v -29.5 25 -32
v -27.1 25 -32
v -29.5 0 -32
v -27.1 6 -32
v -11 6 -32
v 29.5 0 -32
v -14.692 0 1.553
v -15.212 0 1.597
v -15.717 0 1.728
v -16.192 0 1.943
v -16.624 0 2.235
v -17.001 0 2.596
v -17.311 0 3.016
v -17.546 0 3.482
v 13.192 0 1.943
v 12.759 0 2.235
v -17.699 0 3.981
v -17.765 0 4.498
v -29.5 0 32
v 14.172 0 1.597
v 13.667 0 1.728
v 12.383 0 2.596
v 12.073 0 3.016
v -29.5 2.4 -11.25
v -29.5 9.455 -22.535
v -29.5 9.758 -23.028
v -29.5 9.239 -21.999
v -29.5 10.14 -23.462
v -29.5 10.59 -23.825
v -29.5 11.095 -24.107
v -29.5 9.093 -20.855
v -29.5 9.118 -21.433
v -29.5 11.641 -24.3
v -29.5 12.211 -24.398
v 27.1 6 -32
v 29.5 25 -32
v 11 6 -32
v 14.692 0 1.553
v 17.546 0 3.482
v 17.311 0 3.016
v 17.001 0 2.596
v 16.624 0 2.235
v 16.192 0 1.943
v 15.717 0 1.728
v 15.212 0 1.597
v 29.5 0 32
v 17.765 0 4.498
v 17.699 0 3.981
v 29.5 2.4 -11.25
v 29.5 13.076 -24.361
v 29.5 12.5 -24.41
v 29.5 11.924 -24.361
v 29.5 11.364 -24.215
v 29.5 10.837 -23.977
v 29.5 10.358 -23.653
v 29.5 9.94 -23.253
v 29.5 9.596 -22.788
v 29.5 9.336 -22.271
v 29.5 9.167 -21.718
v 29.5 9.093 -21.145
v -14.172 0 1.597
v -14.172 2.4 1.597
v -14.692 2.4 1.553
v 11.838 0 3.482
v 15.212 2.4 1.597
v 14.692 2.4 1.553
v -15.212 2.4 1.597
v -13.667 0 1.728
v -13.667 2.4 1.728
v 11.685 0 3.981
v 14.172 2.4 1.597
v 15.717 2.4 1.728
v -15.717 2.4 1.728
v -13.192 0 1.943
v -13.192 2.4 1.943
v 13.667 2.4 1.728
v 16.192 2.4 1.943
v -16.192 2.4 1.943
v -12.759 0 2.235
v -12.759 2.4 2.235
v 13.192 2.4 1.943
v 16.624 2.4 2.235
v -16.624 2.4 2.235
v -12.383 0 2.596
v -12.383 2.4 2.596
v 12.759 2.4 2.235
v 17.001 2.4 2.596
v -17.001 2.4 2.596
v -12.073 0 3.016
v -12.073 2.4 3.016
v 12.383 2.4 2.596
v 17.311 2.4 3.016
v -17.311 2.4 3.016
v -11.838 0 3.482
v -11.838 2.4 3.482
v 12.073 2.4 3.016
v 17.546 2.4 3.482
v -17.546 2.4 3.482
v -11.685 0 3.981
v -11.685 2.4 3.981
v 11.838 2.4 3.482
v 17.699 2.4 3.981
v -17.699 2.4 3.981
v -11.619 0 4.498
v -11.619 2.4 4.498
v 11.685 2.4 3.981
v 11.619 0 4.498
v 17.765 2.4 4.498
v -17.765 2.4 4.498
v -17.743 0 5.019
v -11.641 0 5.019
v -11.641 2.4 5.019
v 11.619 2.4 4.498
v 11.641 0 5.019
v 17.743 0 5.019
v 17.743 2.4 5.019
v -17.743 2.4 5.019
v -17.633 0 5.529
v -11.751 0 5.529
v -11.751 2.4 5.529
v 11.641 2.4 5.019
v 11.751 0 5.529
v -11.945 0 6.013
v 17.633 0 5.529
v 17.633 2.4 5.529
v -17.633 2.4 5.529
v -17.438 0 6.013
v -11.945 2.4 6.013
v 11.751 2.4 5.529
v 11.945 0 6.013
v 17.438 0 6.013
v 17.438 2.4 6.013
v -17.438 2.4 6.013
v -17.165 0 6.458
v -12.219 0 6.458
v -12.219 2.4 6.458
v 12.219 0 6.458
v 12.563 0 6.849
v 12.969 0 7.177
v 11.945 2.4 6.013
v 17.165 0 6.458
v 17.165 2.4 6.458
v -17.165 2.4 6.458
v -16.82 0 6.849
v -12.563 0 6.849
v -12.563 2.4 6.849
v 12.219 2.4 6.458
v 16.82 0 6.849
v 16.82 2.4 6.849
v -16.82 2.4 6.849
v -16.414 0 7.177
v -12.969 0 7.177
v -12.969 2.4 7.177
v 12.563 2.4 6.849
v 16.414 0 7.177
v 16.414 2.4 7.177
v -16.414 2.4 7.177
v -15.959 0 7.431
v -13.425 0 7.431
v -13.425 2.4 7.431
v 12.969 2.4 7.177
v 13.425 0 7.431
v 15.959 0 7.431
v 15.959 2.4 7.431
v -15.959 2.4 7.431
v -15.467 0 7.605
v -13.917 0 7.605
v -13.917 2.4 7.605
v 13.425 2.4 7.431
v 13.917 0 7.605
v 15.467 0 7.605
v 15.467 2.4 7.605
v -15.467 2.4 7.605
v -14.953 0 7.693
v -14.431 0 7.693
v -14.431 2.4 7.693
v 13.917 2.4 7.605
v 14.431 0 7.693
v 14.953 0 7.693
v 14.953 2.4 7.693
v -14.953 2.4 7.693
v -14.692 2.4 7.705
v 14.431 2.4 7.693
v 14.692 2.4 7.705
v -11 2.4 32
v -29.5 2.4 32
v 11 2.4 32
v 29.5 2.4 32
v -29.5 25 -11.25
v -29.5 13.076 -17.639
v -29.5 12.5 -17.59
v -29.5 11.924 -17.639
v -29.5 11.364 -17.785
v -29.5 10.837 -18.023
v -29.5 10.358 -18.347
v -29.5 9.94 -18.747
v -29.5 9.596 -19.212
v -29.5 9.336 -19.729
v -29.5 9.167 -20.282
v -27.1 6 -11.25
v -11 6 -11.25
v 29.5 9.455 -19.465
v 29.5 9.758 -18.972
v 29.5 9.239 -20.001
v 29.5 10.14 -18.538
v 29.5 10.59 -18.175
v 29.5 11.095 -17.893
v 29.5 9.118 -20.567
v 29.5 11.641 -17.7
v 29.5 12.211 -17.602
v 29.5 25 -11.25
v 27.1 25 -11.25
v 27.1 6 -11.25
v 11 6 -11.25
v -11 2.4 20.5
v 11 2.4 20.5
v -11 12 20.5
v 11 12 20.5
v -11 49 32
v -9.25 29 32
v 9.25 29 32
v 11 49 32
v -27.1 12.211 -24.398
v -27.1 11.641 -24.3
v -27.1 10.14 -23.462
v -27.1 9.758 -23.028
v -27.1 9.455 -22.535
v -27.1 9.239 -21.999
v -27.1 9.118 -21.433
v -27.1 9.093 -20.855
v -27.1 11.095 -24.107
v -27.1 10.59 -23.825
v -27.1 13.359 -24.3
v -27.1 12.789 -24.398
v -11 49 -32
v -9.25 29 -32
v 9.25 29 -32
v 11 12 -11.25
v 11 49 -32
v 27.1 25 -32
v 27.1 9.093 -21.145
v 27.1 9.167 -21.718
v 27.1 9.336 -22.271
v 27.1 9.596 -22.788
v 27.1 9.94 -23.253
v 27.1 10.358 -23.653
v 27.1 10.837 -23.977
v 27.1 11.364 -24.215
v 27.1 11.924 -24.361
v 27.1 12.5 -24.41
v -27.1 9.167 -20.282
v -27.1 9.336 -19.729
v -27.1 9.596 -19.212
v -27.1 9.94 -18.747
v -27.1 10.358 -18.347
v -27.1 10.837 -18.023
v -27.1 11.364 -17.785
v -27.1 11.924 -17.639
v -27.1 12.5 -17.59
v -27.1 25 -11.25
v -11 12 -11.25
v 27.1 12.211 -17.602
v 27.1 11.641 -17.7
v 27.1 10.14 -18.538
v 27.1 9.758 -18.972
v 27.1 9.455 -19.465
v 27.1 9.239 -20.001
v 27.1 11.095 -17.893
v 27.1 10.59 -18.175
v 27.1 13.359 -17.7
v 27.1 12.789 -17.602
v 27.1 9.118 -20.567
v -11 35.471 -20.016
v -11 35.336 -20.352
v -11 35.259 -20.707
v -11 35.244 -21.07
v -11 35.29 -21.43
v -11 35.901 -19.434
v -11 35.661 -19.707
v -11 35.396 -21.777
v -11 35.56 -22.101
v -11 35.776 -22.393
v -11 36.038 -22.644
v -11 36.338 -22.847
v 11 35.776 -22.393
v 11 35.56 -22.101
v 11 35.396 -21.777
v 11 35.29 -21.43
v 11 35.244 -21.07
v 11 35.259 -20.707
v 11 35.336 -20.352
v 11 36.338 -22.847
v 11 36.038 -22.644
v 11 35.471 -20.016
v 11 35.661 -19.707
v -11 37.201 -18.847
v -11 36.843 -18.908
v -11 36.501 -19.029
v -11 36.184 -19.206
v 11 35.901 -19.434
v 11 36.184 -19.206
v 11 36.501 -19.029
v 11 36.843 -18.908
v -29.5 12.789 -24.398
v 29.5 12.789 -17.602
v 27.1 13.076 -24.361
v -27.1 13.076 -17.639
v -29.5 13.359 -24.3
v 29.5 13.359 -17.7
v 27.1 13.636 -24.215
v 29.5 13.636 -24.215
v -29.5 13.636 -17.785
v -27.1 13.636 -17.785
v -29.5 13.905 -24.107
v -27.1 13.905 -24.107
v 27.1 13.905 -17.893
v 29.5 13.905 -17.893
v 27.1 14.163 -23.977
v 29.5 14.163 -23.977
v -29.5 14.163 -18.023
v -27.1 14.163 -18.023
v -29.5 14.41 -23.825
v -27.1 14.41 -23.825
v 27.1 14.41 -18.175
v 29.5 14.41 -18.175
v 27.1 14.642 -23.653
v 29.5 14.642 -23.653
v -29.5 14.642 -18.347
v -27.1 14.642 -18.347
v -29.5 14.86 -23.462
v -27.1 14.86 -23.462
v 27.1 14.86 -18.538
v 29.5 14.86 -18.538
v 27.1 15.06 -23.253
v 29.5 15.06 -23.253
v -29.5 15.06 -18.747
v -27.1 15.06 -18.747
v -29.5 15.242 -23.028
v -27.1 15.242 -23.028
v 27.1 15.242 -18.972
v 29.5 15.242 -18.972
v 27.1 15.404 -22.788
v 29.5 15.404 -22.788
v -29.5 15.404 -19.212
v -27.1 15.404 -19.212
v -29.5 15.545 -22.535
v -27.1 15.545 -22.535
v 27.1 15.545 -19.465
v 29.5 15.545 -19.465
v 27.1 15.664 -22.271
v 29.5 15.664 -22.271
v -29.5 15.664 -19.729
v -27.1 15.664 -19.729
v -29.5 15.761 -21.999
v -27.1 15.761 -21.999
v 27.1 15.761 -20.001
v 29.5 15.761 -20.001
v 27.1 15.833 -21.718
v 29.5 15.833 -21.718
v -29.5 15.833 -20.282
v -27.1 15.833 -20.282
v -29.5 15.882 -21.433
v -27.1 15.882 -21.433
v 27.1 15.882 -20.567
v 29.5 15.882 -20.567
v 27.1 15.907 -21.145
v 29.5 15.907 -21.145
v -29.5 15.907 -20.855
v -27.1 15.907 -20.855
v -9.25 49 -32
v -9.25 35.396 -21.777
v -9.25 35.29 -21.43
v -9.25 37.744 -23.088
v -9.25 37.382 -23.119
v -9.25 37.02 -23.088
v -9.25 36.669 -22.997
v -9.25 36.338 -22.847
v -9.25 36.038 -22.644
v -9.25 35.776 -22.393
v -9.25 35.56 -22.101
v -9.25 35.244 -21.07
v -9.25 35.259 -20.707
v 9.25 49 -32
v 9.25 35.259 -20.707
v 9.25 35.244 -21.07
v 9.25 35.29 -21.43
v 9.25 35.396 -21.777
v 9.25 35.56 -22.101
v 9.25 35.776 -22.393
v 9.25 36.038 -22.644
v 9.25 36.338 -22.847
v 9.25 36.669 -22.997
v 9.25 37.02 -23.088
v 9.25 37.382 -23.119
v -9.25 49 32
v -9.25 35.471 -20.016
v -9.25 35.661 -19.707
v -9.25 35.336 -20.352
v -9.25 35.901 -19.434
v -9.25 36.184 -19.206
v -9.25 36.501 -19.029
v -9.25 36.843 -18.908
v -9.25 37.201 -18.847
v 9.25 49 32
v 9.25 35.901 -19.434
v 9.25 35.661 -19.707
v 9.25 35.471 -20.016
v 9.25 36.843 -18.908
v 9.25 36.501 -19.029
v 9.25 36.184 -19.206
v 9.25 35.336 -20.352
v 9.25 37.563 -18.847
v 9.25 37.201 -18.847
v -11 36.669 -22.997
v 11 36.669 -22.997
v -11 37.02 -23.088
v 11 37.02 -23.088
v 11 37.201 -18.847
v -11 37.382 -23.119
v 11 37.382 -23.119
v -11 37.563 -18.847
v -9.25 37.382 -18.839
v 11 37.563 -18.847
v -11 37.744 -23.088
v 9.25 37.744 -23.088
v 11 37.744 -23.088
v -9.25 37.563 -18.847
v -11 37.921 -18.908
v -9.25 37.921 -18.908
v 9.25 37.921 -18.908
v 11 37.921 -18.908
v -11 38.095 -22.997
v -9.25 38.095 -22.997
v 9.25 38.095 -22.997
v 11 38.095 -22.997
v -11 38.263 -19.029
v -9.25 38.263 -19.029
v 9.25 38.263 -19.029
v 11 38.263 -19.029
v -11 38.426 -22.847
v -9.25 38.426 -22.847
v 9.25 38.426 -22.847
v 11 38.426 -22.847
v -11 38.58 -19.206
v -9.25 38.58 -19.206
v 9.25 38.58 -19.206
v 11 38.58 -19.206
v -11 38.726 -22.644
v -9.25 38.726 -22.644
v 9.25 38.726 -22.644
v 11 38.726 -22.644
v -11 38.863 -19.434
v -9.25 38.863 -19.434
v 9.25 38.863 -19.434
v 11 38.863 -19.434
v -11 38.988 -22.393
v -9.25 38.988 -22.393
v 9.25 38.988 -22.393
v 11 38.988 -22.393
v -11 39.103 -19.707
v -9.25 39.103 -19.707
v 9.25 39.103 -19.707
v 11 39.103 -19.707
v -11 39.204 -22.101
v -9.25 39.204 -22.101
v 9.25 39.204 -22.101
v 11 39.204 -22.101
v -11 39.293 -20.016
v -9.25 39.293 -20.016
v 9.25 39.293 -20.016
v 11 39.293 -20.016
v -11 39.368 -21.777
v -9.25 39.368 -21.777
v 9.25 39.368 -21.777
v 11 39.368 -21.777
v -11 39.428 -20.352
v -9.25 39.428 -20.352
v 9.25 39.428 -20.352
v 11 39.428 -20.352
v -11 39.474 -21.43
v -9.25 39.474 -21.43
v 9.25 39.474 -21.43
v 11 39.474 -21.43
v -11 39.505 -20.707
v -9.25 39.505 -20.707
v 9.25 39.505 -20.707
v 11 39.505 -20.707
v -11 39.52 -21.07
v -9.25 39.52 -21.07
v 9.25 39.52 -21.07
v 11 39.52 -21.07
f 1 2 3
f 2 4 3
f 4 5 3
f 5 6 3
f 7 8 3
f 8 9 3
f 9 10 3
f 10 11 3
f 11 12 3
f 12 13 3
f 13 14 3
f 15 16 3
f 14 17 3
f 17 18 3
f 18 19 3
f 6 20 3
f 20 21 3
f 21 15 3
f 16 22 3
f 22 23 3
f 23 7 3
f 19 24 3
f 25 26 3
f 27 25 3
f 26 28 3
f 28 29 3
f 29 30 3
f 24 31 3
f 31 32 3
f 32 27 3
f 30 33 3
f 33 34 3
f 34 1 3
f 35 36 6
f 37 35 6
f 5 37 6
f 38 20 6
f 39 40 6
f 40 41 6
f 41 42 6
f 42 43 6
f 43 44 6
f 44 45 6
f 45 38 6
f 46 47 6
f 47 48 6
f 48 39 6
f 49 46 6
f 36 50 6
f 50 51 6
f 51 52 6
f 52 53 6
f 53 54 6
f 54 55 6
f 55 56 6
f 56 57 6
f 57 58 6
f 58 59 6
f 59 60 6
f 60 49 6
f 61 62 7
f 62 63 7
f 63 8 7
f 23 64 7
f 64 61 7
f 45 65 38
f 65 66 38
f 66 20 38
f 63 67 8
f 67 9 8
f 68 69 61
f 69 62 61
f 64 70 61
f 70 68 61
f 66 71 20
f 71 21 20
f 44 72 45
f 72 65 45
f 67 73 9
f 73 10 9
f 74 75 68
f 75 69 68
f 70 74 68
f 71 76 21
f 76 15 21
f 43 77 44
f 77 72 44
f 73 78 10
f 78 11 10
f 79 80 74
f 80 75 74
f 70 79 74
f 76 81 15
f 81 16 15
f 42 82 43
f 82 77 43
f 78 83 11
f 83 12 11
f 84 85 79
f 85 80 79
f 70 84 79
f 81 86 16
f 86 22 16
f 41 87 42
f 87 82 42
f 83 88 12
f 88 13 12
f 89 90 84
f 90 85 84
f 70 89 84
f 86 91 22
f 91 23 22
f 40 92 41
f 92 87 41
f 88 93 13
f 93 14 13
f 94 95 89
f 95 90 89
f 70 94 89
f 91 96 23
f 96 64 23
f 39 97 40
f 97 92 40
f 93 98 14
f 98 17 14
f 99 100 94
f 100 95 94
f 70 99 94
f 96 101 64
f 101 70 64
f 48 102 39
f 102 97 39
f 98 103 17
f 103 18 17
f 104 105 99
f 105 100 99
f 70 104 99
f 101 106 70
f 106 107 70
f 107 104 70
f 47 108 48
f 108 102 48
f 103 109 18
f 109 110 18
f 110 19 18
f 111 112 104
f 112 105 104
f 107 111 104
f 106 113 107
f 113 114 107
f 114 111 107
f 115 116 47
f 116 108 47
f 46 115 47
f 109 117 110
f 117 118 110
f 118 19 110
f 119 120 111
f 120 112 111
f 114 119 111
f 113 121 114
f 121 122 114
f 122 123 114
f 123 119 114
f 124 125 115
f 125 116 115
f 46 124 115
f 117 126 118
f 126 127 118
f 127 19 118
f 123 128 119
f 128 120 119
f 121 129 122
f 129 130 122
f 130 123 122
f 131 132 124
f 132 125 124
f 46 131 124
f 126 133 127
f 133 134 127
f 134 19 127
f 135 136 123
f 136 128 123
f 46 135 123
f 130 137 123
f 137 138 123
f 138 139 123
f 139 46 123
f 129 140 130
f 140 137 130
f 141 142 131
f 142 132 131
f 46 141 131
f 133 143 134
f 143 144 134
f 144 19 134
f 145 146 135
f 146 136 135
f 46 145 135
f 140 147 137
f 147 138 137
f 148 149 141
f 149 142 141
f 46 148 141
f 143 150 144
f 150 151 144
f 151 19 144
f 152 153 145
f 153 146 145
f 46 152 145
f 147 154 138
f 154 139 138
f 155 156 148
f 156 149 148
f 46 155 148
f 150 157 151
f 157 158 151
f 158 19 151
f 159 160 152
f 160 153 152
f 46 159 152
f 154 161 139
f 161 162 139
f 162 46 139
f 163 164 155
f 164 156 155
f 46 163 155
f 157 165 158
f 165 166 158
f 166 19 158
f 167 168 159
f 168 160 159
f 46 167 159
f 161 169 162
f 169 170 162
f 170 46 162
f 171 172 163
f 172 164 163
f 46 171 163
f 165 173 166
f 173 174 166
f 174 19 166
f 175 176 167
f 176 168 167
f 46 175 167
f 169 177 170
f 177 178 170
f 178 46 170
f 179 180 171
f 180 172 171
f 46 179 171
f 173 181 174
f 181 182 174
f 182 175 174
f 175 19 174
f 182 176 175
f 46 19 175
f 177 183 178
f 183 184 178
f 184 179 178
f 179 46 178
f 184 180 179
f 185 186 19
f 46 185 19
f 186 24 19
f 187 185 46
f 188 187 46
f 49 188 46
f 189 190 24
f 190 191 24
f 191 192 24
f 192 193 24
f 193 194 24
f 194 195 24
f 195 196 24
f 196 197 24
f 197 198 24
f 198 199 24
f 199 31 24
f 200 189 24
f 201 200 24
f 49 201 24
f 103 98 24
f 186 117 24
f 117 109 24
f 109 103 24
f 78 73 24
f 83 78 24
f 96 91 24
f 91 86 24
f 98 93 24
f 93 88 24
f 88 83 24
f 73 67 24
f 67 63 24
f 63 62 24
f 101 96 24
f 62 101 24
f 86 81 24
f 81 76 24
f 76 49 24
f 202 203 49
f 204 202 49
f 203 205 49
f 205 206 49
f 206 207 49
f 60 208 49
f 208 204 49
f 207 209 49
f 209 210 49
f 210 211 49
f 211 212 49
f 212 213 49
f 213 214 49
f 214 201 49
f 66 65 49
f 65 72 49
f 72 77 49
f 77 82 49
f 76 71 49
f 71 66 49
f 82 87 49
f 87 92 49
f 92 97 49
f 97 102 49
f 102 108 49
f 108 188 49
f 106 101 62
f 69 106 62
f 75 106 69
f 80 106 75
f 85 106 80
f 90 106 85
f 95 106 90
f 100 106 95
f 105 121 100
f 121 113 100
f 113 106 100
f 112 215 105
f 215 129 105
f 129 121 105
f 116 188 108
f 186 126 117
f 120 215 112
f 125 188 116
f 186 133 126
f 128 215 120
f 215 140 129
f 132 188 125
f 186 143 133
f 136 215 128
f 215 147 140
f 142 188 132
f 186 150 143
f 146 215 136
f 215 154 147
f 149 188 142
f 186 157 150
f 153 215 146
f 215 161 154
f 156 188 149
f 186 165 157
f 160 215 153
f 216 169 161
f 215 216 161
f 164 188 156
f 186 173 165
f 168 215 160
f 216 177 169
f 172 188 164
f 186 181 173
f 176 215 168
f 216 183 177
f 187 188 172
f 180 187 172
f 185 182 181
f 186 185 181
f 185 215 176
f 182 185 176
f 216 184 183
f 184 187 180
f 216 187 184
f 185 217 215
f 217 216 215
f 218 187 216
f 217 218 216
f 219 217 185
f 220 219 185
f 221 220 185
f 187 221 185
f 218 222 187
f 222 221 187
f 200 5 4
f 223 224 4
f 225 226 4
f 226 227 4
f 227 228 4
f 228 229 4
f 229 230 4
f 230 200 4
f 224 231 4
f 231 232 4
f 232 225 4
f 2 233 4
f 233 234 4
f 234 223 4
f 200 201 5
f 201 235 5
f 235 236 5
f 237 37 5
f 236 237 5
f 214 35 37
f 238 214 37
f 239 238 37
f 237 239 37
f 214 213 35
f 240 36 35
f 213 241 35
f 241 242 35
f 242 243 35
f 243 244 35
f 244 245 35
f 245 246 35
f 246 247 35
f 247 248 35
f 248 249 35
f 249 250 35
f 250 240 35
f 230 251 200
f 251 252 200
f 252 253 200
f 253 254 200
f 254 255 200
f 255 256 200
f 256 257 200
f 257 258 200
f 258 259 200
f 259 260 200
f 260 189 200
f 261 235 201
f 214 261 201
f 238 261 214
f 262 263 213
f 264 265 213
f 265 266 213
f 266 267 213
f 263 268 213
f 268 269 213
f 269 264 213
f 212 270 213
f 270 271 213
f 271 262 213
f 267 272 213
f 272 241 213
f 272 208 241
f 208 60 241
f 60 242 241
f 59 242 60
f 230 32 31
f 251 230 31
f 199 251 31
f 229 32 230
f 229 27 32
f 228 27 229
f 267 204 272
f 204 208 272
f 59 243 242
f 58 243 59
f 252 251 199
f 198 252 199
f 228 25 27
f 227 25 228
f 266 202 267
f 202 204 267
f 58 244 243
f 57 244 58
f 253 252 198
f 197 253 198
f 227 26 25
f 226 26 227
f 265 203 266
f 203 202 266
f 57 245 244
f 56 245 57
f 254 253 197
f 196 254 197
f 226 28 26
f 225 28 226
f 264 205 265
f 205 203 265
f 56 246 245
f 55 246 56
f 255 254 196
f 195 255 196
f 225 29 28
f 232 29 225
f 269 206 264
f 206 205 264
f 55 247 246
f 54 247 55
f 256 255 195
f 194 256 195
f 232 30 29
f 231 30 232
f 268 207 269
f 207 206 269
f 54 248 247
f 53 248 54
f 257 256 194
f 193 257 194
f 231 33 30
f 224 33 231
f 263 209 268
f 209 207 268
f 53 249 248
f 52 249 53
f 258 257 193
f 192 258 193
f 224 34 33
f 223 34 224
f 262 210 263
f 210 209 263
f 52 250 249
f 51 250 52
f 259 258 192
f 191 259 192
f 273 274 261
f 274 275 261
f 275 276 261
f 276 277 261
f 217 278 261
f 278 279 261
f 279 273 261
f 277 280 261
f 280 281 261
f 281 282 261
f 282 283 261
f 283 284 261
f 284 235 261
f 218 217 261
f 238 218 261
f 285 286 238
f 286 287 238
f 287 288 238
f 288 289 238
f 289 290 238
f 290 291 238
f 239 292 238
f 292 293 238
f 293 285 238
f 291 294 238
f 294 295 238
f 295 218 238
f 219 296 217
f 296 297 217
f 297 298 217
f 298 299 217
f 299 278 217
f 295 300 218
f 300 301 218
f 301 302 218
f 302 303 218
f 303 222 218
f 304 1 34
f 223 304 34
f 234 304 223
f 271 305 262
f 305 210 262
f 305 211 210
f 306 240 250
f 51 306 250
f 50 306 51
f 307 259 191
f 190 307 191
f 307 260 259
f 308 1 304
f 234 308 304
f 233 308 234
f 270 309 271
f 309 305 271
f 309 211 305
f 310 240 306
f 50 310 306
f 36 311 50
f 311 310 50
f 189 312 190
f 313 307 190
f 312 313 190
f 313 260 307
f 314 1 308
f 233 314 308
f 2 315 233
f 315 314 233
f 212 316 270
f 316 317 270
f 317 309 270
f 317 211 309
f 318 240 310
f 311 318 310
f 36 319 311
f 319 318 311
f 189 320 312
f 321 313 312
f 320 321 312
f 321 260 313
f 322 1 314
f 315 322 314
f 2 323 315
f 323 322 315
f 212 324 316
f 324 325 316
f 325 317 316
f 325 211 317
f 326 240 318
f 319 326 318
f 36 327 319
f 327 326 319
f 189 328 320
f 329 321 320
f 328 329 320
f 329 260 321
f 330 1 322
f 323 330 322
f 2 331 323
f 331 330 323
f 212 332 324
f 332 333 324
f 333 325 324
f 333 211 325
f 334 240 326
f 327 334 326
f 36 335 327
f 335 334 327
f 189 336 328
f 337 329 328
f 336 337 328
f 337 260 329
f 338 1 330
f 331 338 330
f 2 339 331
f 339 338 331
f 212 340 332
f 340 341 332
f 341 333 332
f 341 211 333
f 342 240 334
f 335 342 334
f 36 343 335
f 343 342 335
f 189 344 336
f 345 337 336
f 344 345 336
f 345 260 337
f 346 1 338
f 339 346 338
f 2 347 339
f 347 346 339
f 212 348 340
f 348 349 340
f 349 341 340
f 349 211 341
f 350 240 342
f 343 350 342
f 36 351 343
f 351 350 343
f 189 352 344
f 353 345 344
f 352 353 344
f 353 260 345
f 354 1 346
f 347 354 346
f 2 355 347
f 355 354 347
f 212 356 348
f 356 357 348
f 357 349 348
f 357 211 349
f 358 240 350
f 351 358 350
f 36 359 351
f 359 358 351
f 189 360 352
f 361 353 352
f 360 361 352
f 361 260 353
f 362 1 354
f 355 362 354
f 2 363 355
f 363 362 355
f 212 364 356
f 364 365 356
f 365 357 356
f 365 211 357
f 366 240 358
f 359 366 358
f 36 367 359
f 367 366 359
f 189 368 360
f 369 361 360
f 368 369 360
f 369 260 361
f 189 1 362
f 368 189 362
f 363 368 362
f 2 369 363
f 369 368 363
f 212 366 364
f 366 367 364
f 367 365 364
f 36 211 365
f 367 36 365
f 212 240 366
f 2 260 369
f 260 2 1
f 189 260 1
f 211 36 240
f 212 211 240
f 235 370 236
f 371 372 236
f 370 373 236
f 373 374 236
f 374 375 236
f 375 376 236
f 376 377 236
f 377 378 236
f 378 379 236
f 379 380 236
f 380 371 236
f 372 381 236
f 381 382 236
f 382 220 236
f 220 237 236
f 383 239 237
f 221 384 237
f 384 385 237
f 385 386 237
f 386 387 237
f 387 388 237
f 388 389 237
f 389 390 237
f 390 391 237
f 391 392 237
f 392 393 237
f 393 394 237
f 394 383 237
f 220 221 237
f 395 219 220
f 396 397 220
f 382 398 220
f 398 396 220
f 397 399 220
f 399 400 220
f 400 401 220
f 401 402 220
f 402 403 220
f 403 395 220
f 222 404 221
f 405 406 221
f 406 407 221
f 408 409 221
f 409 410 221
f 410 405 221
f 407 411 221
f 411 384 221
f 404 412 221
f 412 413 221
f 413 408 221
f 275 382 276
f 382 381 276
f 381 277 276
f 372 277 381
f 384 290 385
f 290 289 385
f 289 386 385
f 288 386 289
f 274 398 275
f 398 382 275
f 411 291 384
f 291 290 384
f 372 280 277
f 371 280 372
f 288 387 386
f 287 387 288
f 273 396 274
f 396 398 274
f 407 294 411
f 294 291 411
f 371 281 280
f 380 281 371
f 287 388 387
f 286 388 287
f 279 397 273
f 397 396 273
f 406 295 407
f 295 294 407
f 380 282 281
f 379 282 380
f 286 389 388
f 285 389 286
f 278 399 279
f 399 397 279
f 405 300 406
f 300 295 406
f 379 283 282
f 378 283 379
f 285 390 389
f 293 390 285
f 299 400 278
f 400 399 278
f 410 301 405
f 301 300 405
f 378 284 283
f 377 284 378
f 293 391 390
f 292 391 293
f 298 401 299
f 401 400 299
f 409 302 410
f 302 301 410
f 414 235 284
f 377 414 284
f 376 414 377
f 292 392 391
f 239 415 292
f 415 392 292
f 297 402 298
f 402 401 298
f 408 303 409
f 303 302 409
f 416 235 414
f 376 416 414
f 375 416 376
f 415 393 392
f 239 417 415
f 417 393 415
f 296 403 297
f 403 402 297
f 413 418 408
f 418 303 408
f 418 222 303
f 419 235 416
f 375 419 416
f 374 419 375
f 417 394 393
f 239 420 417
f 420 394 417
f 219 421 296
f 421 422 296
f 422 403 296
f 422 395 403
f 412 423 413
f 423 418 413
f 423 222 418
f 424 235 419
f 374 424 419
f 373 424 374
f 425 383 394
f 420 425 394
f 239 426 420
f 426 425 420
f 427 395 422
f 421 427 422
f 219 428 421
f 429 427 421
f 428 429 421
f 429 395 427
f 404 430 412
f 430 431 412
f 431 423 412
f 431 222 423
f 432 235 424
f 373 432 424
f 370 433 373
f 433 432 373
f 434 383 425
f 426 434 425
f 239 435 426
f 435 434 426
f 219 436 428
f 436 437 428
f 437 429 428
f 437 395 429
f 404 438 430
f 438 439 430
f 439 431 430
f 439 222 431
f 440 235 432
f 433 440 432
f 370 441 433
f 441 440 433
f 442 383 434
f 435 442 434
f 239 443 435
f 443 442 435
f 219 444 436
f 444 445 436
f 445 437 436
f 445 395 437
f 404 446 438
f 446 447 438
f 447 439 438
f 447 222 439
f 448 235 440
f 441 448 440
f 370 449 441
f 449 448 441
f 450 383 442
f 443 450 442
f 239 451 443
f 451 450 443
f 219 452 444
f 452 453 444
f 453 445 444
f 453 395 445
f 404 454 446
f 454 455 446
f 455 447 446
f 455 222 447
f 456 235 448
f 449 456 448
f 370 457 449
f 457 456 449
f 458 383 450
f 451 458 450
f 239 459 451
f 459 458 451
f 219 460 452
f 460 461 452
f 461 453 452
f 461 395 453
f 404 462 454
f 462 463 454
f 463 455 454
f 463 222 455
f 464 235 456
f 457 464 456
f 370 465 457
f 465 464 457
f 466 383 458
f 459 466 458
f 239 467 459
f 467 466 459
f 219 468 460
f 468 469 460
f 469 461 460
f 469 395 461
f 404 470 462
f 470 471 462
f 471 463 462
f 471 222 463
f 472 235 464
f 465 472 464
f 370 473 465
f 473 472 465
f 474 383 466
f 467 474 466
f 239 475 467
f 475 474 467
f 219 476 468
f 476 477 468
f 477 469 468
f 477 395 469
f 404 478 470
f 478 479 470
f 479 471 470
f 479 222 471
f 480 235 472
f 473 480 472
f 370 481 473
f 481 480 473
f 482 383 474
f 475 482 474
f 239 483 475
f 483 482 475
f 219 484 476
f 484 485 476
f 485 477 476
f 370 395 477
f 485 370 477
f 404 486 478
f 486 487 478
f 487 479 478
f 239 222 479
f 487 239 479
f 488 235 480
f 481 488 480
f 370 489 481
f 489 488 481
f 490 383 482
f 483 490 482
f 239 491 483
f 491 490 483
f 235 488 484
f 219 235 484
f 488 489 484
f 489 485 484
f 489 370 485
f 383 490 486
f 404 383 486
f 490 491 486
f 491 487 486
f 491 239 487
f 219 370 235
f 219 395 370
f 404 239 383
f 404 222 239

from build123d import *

# Parameters (mm, degrees)
SKETCH1_W           = 22
SKETCH1_H           = 64
BOSS_EXTRUDE2_DEPTH = 49
SKETCH3_W           = 18.5
SKETCH3_H           = 64
CUT_EXTRUDE1_DEPTH  = 20
SKETCH4_R           = 2.14
CUT_EXTRUDE2_DEPTH  = 28
SKETCH5_W           = 64
SKETCH5_H           = 6
BOSS_EXTRUDE3_DEPTH = 18.5
SKETCH6_W           = 2.4
SKETCH6_H           = 64
BOSS_EXTRUDE4_DEPTH = 19
SKETCH7_R           = 3.41
CUT_EXTRUDE3_DEPTH  = 13
SKETCH8_W           = 64
SKETCH8_H           = 6
BOSS_EXTRUDE5_DEPTH = 18.5
SKETCH9_W           = 2.4
SKETCH9_H           = 64
BOSS_EXTRUDE6_DEPTH = 19
SKETCH10_R          = 3.41
CUT_EXTRUDE4_DEPTH  = 13.550505831
SKETCH12_R          = 3.075953135
CUT_EXTRUDE6_DEPTH  = 50
CUT_EXTRUDE7_REACH  = 42.5
SKETCH13_W          = 31.75
SKETCH13_H          = 6
SKETCH15_W          = 2.4
SKETCH15_H          = 43.25
CUT_EXTRUDE8_DEPTH  = 19
SKETCH16_W          = 2.4
SKETCH16_H          = 43.25
CUT_EXTRUDE9_DEPTH  = 19
SKETCH17_R          = 3.075953135
SKETCH17_W          = 18.5
SKETCH17_H          = 11.5
CUT_EXTRUDE10_DEPTH = 3.6


with BuildPart() as part:
    # Sketch1 → Boss-Extrude2 (new body)
    with BuildSketch(Plane(origin=(0, 0, 0), x_dir=(1, 0, 0), z_dir=(0, 1, 0))):
        Rectangle(SKETCH1_W, SKETCH1_H)
    extrude(amount=BOSS_EXTRUDE2_DEPTH)

    # Sketch3 → Cut-Extrude1 (cut)
    with BuildSketch(Plane(origin=(0, 49, 0), x_dir=(1, 0, 0), z_dir=(0, 1, 0))):
        Rectangle(SKETCH3_W, SKETCH3_H)
    extrude(amount=-CUT_EXTRUDE1_DEPTH, mode=Mode.SUBTRACT)

    # Sketch4 → Cut-Extrude2 (cut)
    with BuildSketch(Plane(origin=(11, 0, 0), x_dir=(0, 0, -1), z_dir=(1, 0, 0))):
        with Locations((20.979041052, 37.382)):
            Circle(SKETCH4_R)
    extrude(amount=-CUT_EXTRUDE2_DEPTH, mode=Mode.SUBTRACT)

    # Sketch5 → Boss-Extrude3 (add)
    with BuildSketch(Plane(origin=(11, 0, 0), x_dir=(0, 0, -1), z_dir=(1, 0, 0))):
        with Locations((0, 3)):
            Rectangle(SKETCH5_W, SKETCH5_H)
    extrude(amount=BOSS_EXTRUDE3_DEPTH)

    # Sketch6 → Boss-Extrude4 (add)
    with BuildSketch(Plane(origin=(0, 6, 0), x_dir=(1, 0, 0), z_dir=(0, 1, 0))):
        with Locations((28.3, 0)):
            Rectangle(SKETCH6_W, SKETCH6_H)
    extrude(amount=BOSS_EXTRUDE4_DEPTH)

    # Sketch7 → Cut-Extrude3 (cut)
    with BuildSketch(Plane(origin=(29.5, 0, 0), x_dir=(0, 0, -1), z_dir=(1, 0, 0))):
        with Locations((21, 12.5)):
            Circle(SKETCH7_R)
    extrude(amount=-CUT_EXTRUDE3_DEPTH, mode=Mode.SUBTRACT)

    # Sketch8 → Boss-Extrude5 (add)
    with BuildSketch(Plane.ZY.offset(11)):
        with Locations((0, 3)):
            Rectangle(SKETCH8_W, SKETCH8_H)
    extrude(amount=BOSS_EXTRUDE5_DEPTH)

    # Sketch9 → Boss-Extrude6 (add)
    with BuildSketch(Plane(origin=(0, 6, 0), x_dir=(1, 0, 0), z_dir=(0, 1, 0))):
        with Locations((-28.3, 0)):
            Rectangle(SKETCH9_W, SKETCH9_H)
    extrude(amount=BOSS_EXTRUDE6_DEPTH)

    # Sketch10 → Cut-Extrude4 (cut)
    with BuildSketch(Plane.ZY.offset(29.5)):
        with Locations((-21, 12.5)):
            Circle(SKETCH10_R)
    extrude(amount=-CUT_EXTRUDE4_DEPTH, mode=Mode.SUBTRACT)

    # Sketch12 → Cut-Extrude6 (cut, through all)
    with BuildSketch(Plane(origin=(0, 0, 0), x_dir=(-1, 0, 0), z_dir=(0, -1, 0))):
        with Locations((14.6918, -4.628600023)):
            Circle(SKETCH12_R)
        with Locations((-14.6918, -4.628600023)):
            Circle(SKETCH12_R)
    extrude(amount=-CUT_EXTRUDE6_DEPTH, mode=Mode.SUBTRACT)

    # Sketch13 → Cut-Extrude7 (cut, up to next)
    with BuildSketch(Plane.ZY.offset(11), mode=Mode.PRIVATE) as cut_extrude7_sk1:
        with Locations((4.625, 9)):
            Rectangle(SKETCH13_W, SKETCH13_H)
    cut_extrude7_tool1 = extrude(cut_extrude7_sk1.sketch, amount=-CUT_EXTRUDE7_REACH, mode=Mode.PRIVATE) & part.part
    add(cut_extrude7_tool1.solids().sort_by_distance((-11, 9, 4.625))[0], mode=Mode.SUBTRACT)

    # Sketch15 → Cut-Extrude8 (cut)
    with BuildSketch(Plane(origin=(0, 25, 0), x_dir=(1, 0, 0), z_dir=(0, 1, 0))):
        with Locations((-28.3, -10.375)):
            Rectangle(SKETCH15_W, SKETCH15_H)
    extrude(amount=-CUT_EXTRUDE8_DEPTH, mode=Mode.SUBTRACT)

    # Sketch16 → Cut-Extrude9 (cut)
    with BuildSketch(Plane(origin=(0, 25, 0), x_dir=(1, 0, 0), z_dir=(0, 1, 0))):
        with Locations((28.3, -10.375)):
            Rectangle(SKETCH16_W, SKETCH16_H)
    extrude(amount=-CUT_EXTRUDE9_DEPTH, mode=Mode.SUBTRACT)

    # Sketch17 → Cut-Extrude10 (cut)
    with BuildSketch(Plane(origin=(0, 6, 0), x_dir=(1, 0, 0), z_dir=(0, 1, 0))):
        Polygon((-27.1, 11.25), (-29.5, 11.25), (-29.5, -20.5), (-11, -20.5), (11, -20.5), (29.5, -20.5), (29.5, 11.25), (27.1, 11.25), (11, 11.25), (-11, 11.25), align=None)
        with Locations((-14.6918, -4.628600023)):
            Circle(SKETCH17_R, mode=Mode.SUBTRACT)
        with Locations((14.6918, -4.628600023)):
            Circle(SKETCH17_R, mode=Mode.SUBTRACT)
        with Locations((-20.25, -26.25)):
            Rectangle(SKETCH17_W, SKETCH17_H)
        with Locations((20.25, -26.25)):
            Rectangle(SKETCH17_W, SKETCH17_H)
    extrude(amount=-CUT_EXTRUDE10_DEPTH, mode=Mode.SUBTRACT)


solid = part.part
